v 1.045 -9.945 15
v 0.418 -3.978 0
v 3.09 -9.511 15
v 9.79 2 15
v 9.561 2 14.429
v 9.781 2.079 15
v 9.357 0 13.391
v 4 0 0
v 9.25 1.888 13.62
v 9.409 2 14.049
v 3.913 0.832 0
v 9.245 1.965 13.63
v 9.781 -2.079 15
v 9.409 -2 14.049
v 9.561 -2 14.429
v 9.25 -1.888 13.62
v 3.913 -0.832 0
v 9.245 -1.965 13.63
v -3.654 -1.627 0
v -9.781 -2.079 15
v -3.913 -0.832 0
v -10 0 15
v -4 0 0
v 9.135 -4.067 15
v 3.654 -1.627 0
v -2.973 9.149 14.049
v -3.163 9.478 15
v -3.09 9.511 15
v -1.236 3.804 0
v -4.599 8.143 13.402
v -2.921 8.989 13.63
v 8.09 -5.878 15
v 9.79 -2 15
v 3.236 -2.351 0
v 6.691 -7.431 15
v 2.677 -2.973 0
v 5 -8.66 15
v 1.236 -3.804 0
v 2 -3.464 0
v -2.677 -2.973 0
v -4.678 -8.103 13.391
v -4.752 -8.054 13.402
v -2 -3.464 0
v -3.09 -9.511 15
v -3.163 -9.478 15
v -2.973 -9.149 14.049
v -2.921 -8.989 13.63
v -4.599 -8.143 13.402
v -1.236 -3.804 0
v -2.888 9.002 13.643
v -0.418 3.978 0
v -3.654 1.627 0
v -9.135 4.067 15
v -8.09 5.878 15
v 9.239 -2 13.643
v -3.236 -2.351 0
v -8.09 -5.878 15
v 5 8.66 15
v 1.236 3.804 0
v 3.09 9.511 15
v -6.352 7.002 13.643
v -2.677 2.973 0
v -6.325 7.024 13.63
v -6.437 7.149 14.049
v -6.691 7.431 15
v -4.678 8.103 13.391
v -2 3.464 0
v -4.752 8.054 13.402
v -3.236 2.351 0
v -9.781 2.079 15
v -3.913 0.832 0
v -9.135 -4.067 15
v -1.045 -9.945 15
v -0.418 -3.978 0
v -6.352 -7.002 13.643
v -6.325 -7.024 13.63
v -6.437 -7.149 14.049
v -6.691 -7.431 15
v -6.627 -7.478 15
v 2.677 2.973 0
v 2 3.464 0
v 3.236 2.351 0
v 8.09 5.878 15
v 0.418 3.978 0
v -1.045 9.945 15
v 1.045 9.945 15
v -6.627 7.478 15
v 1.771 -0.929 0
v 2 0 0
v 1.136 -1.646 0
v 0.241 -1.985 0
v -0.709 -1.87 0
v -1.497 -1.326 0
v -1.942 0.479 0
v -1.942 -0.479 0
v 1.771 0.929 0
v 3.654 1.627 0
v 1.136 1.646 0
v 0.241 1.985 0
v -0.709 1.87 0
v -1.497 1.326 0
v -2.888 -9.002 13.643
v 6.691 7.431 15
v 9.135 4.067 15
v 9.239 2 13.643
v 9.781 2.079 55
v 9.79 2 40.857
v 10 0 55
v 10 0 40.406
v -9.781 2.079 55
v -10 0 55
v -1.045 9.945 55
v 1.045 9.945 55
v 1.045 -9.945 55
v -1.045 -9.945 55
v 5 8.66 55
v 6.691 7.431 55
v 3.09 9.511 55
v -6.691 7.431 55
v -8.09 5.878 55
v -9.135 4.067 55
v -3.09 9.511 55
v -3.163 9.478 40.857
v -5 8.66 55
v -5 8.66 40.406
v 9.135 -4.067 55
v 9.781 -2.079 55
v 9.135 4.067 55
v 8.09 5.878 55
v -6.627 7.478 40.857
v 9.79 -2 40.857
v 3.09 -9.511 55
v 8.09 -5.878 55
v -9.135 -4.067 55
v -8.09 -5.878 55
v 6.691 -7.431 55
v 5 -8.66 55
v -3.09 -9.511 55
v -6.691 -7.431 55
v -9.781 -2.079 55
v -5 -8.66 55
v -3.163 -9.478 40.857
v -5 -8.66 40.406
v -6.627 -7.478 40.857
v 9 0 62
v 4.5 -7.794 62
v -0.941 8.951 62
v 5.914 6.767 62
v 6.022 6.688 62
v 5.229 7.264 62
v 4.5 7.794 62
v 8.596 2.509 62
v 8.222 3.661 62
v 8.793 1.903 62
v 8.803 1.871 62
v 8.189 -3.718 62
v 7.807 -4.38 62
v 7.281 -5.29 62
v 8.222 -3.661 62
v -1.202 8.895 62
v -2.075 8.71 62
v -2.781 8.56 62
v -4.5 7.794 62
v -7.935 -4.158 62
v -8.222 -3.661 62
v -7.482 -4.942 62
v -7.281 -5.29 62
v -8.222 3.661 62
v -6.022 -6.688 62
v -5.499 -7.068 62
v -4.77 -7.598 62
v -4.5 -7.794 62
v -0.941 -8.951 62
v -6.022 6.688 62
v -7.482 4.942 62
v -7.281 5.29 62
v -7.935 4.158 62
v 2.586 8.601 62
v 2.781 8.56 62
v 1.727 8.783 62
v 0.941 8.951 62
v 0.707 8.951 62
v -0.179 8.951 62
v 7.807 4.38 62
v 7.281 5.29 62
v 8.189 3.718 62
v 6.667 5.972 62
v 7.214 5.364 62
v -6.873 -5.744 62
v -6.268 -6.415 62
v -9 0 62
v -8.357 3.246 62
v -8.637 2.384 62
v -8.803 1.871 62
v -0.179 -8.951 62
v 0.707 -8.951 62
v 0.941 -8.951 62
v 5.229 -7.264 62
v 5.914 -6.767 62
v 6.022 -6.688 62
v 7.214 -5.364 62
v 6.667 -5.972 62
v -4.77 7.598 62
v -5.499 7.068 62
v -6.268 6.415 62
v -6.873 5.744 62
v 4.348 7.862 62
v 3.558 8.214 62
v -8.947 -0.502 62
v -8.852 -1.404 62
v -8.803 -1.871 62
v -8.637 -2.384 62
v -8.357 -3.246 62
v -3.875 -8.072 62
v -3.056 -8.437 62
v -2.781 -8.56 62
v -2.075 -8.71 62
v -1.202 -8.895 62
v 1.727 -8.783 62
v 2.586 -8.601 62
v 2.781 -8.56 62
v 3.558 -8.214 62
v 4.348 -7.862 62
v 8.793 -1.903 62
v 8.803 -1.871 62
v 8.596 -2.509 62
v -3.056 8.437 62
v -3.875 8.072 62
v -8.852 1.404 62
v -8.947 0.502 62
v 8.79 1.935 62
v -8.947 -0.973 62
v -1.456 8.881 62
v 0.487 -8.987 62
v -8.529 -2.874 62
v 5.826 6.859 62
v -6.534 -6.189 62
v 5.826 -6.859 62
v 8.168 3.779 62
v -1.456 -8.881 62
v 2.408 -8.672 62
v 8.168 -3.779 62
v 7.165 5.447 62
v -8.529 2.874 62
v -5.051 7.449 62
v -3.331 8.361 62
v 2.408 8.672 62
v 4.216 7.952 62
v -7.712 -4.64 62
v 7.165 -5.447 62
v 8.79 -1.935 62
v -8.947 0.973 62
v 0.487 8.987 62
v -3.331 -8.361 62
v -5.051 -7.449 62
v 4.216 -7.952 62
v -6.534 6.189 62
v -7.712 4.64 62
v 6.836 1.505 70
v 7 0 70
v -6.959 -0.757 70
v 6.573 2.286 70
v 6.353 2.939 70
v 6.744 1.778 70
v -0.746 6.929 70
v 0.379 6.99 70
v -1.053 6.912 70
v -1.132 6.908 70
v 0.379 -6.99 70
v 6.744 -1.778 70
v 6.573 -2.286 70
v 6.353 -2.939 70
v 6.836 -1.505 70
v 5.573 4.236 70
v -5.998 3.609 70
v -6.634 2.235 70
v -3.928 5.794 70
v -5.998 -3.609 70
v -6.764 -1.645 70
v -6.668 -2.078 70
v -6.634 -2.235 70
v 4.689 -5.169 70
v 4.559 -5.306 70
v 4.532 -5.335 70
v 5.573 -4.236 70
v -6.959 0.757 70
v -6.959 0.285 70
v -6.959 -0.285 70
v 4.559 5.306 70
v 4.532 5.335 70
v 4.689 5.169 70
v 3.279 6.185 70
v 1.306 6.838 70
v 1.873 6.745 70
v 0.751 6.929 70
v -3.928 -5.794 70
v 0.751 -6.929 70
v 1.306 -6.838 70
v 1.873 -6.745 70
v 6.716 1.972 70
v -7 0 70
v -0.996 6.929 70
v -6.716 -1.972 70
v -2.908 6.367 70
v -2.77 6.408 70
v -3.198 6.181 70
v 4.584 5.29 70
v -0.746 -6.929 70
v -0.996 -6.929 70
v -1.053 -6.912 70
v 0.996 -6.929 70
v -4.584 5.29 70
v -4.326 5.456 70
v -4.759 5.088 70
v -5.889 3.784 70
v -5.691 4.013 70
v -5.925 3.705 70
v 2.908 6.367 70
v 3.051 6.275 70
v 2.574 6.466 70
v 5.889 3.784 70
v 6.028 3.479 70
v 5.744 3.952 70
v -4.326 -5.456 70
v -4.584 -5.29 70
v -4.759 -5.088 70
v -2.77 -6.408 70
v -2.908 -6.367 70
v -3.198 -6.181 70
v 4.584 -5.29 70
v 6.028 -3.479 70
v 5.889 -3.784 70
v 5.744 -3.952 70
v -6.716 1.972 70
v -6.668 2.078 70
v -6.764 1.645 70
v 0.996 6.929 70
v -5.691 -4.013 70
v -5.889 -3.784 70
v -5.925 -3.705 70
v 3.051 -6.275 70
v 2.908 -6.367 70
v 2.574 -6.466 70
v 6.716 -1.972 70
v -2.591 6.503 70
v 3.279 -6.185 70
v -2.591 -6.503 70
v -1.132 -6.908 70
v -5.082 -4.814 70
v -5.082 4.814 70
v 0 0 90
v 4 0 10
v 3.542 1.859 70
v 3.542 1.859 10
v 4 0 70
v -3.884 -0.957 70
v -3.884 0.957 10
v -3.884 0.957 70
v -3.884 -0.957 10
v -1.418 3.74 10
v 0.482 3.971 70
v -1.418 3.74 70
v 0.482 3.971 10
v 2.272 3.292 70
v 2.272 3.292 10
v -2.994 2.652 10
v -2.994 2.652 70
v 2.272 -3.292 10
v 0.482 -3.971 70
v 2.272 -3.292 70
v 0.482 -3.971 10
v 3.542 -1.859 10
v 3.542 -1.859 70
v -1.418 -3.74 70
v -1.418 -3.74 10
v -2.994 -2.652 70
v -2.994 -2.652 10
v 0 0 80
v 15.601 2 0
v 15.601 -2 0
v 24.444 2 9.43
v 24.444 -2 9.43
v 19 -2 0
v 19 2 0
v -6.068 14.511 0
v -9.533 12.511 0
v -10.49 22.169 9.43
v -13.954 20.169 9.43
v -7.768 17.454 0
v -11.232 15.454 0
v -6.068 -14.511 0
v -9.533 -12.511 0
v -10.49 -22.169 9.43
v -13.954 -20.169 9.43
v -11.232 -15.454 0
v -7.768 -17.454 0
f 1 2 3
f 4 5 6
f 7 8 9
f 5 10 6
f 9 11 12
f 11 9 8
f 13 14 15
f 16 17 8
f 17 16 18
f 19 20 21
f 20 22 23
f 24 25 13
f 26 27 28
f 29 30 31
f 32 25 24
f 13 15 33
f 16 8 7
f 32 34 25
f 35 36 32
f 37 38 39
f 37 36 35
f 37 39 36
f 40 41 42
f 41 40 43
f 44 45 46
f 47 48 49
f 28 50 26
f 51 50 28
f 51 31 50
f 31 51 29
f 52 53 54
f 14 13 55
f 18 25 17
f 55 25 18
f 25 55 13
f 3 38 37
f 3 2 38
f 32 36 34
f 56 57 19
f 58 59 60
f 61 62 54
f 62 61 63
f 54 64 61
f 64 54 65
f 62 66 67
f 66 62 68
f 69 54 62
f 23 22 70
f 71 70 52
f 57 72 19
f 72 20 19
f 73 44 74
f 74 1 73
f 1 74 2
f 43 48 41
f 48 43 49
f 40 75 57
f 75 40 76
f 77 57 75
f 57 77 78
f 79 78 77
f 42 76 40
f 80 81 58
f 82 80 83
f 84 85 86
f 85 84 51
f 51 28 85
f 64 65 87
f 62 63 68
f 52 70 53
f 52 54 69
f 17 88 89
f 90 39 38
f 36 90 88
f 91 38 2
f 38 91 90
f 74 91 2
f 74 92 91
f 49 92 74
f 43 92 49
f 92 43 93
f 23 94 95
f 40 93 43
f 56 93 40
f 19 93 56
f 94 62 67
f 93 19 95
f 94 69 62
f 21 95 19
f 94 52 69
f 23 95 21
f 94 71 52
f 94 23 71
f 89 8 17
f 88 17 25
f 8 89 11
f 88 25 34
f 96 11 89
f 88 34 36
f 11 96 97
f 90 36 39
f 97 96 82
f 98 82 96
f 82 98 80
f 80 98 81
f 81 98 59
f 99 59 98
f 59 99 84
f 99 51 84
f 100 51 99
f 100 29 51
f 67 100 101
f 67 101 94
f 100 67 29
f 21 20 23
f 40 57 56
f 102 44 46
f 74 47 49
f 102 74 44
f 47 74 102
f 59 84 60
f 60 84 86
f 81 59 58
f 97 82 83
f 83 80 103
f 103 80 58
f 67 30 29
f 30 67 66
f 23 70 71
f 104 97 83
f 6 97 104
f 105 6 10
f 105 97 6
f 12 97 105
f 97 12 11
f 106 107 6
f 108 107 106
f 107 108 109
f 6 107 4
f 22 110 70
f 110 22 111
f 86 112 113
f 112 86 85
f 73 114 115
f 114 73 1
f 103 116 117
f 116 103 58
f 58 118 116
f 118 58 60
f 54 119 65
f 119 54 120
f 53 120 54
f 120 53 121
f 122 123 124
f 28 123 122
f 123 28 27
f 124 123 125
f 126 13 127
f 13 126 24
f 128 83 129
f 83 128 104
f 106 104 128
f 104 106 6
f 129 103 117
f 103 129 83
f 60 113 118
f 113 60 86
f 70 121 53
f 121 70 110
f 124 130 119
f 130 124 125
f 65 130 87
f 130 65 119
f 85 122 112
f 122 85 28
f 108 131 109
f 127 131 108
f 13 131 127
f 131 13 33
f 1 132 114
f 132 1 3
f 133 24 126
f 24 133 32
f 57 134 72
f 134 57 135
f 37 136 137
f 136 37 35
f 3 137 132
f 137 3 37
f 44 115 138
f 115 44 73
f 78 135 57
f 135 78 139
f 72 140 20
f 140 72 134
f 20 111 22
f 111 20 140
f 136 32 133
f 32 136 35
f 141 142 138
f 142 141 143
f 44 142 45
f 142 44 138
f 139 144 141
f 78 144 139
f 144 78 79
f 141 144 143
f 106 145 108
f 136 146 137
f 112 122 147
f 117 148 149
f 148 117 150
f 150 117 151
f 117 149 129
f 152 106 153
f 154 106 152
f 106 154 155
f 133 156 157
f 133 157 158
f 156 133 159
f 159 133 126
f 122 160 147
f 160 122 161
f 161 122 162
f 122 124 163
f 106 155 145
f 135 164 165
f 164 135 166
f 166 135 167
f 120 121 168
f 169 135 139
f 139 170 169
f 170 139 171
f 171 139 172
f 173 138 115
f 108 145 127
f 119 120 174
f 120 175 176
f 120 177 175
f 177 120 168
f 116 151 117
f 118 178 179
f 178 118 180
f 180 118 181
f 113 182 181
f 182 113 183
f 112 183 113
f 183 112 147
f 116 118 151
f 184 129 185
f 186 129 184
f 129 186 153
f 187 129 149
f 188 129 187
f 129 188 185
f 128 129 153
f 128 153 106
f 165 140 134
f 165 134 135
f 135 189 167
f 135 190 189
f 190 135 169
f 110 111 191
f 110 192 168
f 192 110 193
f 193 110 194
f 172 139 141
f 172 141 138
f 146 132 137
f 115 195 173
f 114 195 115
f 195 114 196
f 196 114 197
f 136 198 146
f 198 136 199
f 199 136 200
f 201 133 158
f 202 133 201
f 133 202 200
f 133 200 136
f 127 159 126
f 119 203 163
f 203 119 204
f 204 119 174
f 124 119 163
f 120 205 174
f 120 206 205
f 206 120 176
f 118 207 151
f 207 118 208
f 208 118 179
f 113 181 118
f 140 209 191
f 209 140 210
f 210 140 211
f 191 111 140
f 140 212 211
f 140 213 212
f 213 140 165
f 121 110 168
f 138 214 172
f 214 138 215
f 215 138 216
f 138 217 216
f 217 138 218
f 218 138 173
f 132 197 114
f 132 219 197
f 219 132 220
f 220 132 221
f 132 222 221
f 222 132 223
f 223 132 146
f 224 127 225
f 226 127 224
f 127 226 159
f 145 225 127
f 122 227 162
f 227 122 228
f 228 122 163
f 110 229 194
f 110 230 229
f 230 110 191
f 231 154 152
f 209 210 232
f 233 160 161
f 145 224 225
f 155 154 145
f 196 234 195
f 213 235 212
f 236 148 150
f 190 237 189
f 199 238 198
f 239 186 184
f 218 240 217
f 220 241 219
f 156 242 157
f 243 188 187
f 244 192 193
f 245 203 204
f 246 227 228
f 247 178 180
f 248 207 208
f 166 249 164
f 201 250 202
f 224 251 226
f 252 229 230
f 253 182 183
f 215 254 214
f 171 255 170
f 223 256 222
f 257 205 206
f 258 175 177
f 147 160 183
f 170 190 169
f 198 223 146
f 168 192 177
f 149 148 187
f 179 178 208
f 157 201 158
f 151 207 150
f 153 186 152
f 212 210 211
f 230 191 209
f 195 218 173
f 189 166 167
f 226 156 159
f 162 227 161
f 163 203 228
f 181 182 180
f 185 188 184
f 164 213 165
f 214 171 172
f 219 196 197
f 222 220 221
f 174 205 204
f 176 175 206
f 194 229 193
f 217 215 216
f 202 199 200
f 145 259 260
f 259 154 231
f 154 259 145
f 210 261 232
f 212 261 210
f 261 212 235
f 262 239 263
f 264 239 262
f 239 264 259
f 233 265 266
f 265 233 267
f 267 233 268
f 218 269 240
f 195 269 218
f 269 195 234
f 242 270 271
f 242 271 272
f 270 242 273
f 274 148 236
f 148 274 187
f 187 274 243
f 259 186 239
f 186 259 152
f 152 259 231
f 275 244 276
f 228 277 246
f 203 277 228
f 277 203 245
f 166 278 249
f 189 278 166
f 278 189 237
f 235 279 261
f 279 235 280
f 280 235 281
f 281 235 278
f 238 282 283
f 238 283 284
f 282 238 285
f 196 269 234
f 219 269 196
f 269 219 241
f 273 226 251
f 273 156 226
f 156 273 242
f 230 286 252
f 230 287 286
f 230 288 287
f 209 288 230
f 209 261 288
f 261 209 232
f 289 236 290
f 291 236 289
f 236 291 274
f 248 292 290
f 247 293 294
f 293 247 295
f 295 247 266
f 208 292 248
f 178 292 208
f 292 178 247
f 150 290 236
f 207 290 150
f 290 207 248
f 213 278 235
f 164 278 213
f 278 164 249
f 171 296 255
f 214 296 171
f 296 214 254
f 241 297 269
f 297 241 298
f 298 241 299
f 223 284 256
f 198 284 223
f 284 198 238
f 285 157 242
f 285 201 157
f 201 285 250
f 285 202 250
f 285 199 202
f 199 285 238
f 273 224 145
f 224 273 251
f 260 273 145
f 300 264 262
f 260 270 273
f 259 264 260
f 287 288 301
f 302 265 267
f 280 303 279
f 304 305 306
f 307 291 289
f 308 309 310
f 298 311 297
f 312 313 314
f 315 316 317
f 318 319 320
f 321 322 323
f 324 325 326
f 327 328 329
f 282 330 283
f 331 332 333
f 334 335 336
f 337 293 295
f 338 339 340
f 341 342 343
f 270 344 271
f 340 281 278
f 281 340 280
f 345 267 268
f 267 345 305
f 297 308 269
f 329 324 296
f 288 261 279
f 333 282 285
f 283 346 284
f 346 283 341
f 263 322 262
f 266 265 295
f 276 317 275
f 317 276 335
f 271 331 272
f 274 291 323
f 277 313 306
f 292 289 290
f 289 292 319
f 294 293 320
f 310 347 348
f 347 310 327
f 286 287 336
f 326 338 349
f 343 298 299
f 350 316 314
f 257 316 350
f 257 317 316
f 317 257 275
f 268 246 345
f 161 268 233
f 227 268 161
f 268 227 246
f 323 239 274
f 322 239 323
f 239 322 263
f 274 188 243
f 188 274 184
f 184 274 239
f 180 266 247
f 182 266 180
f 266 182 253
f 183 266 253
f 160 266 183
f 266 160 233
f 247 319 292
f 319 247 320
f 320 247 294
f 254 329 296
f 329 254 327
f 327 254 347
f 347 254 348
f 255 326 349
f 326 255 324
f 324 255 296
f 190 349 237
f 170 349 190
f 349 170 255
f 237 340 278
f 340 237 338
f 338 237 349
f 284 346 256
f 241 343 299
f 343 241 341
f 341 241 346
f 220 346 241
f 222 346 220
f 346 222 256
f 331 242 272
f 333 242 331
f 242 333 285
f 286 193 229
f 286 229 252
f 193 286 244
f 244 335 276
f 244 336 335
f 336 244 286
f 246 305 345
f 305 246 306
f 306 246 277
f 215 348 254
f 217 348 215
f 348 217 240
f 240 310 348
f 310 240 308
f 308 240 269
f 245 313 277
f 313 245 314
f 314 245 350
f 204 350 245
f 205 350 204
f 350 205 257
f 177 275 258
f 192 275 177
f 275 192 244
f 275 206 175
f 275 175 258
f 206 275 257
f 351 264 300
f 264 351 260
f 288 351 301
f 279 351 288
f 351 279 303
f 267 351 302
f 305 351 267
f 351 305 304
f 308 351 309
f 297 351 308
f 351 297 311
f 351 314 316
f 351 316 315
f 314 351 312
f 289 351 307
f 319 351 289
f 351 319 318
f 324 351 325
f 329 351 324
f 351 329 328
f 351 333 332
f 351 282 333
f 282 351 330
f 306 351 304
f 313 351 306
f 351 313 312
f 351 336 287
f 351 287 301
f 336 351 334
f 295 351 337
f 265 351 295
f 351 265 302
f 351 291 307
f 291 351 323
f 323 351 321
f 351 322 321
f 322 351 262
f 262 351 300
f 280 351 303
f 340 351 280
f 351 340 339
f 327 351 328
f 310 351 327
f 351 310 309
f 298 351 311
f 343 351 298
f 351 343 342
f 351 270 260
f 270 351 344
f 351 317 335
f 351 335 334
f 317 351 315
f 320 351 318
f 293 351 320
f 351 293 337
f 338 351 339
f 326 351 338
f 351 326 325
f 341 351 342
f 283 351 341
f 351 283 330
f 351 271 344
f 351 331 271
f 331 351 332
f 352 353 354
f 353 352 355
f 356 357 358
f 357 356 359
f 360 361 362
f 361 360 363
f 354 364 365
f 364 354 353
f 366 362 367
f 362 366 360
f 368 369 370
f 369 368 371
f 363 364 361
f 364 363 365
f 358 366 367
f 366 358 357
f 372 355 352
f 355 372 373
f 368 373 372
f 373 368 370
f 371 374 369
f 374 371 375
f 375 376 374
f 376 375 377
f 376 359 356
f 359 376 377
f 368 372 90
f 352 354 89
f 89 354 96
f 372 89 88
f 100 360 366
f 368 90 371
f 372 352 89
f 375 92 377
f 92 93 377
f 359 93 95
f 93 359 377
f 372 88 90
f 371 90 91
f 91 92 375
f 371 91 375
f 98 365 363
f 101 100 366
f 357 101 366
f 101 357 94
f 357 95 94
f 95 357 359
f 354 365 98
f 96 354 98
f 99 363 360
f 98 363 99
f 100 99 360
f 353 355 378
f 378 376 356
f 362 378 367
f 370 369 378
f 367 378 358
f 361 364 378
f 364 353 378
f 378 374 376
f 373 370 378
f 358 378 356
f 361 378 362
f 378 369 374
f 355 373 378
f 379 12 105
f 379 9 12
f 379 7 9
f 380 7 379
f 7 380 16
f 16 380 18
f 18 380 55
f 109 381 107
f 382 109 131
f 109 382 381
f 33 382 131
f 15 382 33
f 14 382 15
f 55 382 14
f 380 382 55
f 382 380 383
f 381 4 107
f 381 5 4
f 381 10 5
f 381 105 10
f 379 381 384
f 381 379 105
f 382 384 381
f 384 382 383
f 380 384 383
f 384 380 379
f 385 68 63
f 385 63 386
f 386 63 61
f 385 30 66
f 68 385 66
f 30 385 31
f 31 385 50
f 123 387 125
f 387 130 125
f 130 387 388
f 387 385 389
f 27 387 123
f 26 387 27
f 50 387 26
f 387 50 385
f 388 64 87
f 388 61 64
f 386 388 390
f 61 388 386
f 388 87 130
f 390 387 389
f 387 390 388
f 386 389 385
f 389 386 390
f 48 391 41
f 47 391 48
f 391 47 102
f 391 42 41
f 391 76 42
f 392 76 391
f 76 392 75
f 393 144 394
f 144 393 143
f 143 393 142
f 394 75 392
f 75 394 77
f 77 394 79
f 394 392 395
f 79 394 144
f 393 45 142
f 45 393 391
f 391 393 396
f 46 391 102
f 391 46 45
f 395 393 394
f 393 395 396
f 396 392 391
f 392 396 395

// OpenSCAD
module fin() {
    inside=4;
        
    translate([0,-2,0])
    difference() {
        difference() {
            difference() {
                translate([inside+3,0,-3])rotate([0,-25,0])cube([12,4,45]);
                translate([inside-25,-5,0])cube([20,10,50]);
            };
            
            // fin end
            translate([inside+5,-3,0])rotate([0,30,0])cube([10,10,20]);
        }
        translate([inside-5,-3,-10])cube([20,10,10]);
    }
    
}

// center

difference()
{
    // build body
    union() {
        // nozzle
        translate([0,0,0]) cylinder( 15, r1= 4, r2=10, center=false );

        // body
        translate([0,0,15])cylinder( 40, r1=10, r2=10, center=false);

        // cone
        translate([0,0,55])cylinder(  7, r1=10, r2= 9, center=false );
        translate([0,0,62])cylinder(  8, r1= 9, r2= 7, center=false );
        translate([0,0,70])cylinder( 20, r1= 7, r2= 0, center=false );

    }

    // center hole
    union() {
            translate([ 0,0,10]) cylinder( 60, r1= 4, r2= 4, center=false ); 
            translate([ 0,0, 0]) cylinder( 10, r1= 2, r2= 4, center=false ); 
            translate([ 0,0,70]) cylinder( 10, r1= 4, r2= 0, center=false ); 
    }

}

// fins
fins=3;
for(i=[0:fins-1])
    rotate([0,0,i*(360/fins)]) translate([10,0,0]) fin();
